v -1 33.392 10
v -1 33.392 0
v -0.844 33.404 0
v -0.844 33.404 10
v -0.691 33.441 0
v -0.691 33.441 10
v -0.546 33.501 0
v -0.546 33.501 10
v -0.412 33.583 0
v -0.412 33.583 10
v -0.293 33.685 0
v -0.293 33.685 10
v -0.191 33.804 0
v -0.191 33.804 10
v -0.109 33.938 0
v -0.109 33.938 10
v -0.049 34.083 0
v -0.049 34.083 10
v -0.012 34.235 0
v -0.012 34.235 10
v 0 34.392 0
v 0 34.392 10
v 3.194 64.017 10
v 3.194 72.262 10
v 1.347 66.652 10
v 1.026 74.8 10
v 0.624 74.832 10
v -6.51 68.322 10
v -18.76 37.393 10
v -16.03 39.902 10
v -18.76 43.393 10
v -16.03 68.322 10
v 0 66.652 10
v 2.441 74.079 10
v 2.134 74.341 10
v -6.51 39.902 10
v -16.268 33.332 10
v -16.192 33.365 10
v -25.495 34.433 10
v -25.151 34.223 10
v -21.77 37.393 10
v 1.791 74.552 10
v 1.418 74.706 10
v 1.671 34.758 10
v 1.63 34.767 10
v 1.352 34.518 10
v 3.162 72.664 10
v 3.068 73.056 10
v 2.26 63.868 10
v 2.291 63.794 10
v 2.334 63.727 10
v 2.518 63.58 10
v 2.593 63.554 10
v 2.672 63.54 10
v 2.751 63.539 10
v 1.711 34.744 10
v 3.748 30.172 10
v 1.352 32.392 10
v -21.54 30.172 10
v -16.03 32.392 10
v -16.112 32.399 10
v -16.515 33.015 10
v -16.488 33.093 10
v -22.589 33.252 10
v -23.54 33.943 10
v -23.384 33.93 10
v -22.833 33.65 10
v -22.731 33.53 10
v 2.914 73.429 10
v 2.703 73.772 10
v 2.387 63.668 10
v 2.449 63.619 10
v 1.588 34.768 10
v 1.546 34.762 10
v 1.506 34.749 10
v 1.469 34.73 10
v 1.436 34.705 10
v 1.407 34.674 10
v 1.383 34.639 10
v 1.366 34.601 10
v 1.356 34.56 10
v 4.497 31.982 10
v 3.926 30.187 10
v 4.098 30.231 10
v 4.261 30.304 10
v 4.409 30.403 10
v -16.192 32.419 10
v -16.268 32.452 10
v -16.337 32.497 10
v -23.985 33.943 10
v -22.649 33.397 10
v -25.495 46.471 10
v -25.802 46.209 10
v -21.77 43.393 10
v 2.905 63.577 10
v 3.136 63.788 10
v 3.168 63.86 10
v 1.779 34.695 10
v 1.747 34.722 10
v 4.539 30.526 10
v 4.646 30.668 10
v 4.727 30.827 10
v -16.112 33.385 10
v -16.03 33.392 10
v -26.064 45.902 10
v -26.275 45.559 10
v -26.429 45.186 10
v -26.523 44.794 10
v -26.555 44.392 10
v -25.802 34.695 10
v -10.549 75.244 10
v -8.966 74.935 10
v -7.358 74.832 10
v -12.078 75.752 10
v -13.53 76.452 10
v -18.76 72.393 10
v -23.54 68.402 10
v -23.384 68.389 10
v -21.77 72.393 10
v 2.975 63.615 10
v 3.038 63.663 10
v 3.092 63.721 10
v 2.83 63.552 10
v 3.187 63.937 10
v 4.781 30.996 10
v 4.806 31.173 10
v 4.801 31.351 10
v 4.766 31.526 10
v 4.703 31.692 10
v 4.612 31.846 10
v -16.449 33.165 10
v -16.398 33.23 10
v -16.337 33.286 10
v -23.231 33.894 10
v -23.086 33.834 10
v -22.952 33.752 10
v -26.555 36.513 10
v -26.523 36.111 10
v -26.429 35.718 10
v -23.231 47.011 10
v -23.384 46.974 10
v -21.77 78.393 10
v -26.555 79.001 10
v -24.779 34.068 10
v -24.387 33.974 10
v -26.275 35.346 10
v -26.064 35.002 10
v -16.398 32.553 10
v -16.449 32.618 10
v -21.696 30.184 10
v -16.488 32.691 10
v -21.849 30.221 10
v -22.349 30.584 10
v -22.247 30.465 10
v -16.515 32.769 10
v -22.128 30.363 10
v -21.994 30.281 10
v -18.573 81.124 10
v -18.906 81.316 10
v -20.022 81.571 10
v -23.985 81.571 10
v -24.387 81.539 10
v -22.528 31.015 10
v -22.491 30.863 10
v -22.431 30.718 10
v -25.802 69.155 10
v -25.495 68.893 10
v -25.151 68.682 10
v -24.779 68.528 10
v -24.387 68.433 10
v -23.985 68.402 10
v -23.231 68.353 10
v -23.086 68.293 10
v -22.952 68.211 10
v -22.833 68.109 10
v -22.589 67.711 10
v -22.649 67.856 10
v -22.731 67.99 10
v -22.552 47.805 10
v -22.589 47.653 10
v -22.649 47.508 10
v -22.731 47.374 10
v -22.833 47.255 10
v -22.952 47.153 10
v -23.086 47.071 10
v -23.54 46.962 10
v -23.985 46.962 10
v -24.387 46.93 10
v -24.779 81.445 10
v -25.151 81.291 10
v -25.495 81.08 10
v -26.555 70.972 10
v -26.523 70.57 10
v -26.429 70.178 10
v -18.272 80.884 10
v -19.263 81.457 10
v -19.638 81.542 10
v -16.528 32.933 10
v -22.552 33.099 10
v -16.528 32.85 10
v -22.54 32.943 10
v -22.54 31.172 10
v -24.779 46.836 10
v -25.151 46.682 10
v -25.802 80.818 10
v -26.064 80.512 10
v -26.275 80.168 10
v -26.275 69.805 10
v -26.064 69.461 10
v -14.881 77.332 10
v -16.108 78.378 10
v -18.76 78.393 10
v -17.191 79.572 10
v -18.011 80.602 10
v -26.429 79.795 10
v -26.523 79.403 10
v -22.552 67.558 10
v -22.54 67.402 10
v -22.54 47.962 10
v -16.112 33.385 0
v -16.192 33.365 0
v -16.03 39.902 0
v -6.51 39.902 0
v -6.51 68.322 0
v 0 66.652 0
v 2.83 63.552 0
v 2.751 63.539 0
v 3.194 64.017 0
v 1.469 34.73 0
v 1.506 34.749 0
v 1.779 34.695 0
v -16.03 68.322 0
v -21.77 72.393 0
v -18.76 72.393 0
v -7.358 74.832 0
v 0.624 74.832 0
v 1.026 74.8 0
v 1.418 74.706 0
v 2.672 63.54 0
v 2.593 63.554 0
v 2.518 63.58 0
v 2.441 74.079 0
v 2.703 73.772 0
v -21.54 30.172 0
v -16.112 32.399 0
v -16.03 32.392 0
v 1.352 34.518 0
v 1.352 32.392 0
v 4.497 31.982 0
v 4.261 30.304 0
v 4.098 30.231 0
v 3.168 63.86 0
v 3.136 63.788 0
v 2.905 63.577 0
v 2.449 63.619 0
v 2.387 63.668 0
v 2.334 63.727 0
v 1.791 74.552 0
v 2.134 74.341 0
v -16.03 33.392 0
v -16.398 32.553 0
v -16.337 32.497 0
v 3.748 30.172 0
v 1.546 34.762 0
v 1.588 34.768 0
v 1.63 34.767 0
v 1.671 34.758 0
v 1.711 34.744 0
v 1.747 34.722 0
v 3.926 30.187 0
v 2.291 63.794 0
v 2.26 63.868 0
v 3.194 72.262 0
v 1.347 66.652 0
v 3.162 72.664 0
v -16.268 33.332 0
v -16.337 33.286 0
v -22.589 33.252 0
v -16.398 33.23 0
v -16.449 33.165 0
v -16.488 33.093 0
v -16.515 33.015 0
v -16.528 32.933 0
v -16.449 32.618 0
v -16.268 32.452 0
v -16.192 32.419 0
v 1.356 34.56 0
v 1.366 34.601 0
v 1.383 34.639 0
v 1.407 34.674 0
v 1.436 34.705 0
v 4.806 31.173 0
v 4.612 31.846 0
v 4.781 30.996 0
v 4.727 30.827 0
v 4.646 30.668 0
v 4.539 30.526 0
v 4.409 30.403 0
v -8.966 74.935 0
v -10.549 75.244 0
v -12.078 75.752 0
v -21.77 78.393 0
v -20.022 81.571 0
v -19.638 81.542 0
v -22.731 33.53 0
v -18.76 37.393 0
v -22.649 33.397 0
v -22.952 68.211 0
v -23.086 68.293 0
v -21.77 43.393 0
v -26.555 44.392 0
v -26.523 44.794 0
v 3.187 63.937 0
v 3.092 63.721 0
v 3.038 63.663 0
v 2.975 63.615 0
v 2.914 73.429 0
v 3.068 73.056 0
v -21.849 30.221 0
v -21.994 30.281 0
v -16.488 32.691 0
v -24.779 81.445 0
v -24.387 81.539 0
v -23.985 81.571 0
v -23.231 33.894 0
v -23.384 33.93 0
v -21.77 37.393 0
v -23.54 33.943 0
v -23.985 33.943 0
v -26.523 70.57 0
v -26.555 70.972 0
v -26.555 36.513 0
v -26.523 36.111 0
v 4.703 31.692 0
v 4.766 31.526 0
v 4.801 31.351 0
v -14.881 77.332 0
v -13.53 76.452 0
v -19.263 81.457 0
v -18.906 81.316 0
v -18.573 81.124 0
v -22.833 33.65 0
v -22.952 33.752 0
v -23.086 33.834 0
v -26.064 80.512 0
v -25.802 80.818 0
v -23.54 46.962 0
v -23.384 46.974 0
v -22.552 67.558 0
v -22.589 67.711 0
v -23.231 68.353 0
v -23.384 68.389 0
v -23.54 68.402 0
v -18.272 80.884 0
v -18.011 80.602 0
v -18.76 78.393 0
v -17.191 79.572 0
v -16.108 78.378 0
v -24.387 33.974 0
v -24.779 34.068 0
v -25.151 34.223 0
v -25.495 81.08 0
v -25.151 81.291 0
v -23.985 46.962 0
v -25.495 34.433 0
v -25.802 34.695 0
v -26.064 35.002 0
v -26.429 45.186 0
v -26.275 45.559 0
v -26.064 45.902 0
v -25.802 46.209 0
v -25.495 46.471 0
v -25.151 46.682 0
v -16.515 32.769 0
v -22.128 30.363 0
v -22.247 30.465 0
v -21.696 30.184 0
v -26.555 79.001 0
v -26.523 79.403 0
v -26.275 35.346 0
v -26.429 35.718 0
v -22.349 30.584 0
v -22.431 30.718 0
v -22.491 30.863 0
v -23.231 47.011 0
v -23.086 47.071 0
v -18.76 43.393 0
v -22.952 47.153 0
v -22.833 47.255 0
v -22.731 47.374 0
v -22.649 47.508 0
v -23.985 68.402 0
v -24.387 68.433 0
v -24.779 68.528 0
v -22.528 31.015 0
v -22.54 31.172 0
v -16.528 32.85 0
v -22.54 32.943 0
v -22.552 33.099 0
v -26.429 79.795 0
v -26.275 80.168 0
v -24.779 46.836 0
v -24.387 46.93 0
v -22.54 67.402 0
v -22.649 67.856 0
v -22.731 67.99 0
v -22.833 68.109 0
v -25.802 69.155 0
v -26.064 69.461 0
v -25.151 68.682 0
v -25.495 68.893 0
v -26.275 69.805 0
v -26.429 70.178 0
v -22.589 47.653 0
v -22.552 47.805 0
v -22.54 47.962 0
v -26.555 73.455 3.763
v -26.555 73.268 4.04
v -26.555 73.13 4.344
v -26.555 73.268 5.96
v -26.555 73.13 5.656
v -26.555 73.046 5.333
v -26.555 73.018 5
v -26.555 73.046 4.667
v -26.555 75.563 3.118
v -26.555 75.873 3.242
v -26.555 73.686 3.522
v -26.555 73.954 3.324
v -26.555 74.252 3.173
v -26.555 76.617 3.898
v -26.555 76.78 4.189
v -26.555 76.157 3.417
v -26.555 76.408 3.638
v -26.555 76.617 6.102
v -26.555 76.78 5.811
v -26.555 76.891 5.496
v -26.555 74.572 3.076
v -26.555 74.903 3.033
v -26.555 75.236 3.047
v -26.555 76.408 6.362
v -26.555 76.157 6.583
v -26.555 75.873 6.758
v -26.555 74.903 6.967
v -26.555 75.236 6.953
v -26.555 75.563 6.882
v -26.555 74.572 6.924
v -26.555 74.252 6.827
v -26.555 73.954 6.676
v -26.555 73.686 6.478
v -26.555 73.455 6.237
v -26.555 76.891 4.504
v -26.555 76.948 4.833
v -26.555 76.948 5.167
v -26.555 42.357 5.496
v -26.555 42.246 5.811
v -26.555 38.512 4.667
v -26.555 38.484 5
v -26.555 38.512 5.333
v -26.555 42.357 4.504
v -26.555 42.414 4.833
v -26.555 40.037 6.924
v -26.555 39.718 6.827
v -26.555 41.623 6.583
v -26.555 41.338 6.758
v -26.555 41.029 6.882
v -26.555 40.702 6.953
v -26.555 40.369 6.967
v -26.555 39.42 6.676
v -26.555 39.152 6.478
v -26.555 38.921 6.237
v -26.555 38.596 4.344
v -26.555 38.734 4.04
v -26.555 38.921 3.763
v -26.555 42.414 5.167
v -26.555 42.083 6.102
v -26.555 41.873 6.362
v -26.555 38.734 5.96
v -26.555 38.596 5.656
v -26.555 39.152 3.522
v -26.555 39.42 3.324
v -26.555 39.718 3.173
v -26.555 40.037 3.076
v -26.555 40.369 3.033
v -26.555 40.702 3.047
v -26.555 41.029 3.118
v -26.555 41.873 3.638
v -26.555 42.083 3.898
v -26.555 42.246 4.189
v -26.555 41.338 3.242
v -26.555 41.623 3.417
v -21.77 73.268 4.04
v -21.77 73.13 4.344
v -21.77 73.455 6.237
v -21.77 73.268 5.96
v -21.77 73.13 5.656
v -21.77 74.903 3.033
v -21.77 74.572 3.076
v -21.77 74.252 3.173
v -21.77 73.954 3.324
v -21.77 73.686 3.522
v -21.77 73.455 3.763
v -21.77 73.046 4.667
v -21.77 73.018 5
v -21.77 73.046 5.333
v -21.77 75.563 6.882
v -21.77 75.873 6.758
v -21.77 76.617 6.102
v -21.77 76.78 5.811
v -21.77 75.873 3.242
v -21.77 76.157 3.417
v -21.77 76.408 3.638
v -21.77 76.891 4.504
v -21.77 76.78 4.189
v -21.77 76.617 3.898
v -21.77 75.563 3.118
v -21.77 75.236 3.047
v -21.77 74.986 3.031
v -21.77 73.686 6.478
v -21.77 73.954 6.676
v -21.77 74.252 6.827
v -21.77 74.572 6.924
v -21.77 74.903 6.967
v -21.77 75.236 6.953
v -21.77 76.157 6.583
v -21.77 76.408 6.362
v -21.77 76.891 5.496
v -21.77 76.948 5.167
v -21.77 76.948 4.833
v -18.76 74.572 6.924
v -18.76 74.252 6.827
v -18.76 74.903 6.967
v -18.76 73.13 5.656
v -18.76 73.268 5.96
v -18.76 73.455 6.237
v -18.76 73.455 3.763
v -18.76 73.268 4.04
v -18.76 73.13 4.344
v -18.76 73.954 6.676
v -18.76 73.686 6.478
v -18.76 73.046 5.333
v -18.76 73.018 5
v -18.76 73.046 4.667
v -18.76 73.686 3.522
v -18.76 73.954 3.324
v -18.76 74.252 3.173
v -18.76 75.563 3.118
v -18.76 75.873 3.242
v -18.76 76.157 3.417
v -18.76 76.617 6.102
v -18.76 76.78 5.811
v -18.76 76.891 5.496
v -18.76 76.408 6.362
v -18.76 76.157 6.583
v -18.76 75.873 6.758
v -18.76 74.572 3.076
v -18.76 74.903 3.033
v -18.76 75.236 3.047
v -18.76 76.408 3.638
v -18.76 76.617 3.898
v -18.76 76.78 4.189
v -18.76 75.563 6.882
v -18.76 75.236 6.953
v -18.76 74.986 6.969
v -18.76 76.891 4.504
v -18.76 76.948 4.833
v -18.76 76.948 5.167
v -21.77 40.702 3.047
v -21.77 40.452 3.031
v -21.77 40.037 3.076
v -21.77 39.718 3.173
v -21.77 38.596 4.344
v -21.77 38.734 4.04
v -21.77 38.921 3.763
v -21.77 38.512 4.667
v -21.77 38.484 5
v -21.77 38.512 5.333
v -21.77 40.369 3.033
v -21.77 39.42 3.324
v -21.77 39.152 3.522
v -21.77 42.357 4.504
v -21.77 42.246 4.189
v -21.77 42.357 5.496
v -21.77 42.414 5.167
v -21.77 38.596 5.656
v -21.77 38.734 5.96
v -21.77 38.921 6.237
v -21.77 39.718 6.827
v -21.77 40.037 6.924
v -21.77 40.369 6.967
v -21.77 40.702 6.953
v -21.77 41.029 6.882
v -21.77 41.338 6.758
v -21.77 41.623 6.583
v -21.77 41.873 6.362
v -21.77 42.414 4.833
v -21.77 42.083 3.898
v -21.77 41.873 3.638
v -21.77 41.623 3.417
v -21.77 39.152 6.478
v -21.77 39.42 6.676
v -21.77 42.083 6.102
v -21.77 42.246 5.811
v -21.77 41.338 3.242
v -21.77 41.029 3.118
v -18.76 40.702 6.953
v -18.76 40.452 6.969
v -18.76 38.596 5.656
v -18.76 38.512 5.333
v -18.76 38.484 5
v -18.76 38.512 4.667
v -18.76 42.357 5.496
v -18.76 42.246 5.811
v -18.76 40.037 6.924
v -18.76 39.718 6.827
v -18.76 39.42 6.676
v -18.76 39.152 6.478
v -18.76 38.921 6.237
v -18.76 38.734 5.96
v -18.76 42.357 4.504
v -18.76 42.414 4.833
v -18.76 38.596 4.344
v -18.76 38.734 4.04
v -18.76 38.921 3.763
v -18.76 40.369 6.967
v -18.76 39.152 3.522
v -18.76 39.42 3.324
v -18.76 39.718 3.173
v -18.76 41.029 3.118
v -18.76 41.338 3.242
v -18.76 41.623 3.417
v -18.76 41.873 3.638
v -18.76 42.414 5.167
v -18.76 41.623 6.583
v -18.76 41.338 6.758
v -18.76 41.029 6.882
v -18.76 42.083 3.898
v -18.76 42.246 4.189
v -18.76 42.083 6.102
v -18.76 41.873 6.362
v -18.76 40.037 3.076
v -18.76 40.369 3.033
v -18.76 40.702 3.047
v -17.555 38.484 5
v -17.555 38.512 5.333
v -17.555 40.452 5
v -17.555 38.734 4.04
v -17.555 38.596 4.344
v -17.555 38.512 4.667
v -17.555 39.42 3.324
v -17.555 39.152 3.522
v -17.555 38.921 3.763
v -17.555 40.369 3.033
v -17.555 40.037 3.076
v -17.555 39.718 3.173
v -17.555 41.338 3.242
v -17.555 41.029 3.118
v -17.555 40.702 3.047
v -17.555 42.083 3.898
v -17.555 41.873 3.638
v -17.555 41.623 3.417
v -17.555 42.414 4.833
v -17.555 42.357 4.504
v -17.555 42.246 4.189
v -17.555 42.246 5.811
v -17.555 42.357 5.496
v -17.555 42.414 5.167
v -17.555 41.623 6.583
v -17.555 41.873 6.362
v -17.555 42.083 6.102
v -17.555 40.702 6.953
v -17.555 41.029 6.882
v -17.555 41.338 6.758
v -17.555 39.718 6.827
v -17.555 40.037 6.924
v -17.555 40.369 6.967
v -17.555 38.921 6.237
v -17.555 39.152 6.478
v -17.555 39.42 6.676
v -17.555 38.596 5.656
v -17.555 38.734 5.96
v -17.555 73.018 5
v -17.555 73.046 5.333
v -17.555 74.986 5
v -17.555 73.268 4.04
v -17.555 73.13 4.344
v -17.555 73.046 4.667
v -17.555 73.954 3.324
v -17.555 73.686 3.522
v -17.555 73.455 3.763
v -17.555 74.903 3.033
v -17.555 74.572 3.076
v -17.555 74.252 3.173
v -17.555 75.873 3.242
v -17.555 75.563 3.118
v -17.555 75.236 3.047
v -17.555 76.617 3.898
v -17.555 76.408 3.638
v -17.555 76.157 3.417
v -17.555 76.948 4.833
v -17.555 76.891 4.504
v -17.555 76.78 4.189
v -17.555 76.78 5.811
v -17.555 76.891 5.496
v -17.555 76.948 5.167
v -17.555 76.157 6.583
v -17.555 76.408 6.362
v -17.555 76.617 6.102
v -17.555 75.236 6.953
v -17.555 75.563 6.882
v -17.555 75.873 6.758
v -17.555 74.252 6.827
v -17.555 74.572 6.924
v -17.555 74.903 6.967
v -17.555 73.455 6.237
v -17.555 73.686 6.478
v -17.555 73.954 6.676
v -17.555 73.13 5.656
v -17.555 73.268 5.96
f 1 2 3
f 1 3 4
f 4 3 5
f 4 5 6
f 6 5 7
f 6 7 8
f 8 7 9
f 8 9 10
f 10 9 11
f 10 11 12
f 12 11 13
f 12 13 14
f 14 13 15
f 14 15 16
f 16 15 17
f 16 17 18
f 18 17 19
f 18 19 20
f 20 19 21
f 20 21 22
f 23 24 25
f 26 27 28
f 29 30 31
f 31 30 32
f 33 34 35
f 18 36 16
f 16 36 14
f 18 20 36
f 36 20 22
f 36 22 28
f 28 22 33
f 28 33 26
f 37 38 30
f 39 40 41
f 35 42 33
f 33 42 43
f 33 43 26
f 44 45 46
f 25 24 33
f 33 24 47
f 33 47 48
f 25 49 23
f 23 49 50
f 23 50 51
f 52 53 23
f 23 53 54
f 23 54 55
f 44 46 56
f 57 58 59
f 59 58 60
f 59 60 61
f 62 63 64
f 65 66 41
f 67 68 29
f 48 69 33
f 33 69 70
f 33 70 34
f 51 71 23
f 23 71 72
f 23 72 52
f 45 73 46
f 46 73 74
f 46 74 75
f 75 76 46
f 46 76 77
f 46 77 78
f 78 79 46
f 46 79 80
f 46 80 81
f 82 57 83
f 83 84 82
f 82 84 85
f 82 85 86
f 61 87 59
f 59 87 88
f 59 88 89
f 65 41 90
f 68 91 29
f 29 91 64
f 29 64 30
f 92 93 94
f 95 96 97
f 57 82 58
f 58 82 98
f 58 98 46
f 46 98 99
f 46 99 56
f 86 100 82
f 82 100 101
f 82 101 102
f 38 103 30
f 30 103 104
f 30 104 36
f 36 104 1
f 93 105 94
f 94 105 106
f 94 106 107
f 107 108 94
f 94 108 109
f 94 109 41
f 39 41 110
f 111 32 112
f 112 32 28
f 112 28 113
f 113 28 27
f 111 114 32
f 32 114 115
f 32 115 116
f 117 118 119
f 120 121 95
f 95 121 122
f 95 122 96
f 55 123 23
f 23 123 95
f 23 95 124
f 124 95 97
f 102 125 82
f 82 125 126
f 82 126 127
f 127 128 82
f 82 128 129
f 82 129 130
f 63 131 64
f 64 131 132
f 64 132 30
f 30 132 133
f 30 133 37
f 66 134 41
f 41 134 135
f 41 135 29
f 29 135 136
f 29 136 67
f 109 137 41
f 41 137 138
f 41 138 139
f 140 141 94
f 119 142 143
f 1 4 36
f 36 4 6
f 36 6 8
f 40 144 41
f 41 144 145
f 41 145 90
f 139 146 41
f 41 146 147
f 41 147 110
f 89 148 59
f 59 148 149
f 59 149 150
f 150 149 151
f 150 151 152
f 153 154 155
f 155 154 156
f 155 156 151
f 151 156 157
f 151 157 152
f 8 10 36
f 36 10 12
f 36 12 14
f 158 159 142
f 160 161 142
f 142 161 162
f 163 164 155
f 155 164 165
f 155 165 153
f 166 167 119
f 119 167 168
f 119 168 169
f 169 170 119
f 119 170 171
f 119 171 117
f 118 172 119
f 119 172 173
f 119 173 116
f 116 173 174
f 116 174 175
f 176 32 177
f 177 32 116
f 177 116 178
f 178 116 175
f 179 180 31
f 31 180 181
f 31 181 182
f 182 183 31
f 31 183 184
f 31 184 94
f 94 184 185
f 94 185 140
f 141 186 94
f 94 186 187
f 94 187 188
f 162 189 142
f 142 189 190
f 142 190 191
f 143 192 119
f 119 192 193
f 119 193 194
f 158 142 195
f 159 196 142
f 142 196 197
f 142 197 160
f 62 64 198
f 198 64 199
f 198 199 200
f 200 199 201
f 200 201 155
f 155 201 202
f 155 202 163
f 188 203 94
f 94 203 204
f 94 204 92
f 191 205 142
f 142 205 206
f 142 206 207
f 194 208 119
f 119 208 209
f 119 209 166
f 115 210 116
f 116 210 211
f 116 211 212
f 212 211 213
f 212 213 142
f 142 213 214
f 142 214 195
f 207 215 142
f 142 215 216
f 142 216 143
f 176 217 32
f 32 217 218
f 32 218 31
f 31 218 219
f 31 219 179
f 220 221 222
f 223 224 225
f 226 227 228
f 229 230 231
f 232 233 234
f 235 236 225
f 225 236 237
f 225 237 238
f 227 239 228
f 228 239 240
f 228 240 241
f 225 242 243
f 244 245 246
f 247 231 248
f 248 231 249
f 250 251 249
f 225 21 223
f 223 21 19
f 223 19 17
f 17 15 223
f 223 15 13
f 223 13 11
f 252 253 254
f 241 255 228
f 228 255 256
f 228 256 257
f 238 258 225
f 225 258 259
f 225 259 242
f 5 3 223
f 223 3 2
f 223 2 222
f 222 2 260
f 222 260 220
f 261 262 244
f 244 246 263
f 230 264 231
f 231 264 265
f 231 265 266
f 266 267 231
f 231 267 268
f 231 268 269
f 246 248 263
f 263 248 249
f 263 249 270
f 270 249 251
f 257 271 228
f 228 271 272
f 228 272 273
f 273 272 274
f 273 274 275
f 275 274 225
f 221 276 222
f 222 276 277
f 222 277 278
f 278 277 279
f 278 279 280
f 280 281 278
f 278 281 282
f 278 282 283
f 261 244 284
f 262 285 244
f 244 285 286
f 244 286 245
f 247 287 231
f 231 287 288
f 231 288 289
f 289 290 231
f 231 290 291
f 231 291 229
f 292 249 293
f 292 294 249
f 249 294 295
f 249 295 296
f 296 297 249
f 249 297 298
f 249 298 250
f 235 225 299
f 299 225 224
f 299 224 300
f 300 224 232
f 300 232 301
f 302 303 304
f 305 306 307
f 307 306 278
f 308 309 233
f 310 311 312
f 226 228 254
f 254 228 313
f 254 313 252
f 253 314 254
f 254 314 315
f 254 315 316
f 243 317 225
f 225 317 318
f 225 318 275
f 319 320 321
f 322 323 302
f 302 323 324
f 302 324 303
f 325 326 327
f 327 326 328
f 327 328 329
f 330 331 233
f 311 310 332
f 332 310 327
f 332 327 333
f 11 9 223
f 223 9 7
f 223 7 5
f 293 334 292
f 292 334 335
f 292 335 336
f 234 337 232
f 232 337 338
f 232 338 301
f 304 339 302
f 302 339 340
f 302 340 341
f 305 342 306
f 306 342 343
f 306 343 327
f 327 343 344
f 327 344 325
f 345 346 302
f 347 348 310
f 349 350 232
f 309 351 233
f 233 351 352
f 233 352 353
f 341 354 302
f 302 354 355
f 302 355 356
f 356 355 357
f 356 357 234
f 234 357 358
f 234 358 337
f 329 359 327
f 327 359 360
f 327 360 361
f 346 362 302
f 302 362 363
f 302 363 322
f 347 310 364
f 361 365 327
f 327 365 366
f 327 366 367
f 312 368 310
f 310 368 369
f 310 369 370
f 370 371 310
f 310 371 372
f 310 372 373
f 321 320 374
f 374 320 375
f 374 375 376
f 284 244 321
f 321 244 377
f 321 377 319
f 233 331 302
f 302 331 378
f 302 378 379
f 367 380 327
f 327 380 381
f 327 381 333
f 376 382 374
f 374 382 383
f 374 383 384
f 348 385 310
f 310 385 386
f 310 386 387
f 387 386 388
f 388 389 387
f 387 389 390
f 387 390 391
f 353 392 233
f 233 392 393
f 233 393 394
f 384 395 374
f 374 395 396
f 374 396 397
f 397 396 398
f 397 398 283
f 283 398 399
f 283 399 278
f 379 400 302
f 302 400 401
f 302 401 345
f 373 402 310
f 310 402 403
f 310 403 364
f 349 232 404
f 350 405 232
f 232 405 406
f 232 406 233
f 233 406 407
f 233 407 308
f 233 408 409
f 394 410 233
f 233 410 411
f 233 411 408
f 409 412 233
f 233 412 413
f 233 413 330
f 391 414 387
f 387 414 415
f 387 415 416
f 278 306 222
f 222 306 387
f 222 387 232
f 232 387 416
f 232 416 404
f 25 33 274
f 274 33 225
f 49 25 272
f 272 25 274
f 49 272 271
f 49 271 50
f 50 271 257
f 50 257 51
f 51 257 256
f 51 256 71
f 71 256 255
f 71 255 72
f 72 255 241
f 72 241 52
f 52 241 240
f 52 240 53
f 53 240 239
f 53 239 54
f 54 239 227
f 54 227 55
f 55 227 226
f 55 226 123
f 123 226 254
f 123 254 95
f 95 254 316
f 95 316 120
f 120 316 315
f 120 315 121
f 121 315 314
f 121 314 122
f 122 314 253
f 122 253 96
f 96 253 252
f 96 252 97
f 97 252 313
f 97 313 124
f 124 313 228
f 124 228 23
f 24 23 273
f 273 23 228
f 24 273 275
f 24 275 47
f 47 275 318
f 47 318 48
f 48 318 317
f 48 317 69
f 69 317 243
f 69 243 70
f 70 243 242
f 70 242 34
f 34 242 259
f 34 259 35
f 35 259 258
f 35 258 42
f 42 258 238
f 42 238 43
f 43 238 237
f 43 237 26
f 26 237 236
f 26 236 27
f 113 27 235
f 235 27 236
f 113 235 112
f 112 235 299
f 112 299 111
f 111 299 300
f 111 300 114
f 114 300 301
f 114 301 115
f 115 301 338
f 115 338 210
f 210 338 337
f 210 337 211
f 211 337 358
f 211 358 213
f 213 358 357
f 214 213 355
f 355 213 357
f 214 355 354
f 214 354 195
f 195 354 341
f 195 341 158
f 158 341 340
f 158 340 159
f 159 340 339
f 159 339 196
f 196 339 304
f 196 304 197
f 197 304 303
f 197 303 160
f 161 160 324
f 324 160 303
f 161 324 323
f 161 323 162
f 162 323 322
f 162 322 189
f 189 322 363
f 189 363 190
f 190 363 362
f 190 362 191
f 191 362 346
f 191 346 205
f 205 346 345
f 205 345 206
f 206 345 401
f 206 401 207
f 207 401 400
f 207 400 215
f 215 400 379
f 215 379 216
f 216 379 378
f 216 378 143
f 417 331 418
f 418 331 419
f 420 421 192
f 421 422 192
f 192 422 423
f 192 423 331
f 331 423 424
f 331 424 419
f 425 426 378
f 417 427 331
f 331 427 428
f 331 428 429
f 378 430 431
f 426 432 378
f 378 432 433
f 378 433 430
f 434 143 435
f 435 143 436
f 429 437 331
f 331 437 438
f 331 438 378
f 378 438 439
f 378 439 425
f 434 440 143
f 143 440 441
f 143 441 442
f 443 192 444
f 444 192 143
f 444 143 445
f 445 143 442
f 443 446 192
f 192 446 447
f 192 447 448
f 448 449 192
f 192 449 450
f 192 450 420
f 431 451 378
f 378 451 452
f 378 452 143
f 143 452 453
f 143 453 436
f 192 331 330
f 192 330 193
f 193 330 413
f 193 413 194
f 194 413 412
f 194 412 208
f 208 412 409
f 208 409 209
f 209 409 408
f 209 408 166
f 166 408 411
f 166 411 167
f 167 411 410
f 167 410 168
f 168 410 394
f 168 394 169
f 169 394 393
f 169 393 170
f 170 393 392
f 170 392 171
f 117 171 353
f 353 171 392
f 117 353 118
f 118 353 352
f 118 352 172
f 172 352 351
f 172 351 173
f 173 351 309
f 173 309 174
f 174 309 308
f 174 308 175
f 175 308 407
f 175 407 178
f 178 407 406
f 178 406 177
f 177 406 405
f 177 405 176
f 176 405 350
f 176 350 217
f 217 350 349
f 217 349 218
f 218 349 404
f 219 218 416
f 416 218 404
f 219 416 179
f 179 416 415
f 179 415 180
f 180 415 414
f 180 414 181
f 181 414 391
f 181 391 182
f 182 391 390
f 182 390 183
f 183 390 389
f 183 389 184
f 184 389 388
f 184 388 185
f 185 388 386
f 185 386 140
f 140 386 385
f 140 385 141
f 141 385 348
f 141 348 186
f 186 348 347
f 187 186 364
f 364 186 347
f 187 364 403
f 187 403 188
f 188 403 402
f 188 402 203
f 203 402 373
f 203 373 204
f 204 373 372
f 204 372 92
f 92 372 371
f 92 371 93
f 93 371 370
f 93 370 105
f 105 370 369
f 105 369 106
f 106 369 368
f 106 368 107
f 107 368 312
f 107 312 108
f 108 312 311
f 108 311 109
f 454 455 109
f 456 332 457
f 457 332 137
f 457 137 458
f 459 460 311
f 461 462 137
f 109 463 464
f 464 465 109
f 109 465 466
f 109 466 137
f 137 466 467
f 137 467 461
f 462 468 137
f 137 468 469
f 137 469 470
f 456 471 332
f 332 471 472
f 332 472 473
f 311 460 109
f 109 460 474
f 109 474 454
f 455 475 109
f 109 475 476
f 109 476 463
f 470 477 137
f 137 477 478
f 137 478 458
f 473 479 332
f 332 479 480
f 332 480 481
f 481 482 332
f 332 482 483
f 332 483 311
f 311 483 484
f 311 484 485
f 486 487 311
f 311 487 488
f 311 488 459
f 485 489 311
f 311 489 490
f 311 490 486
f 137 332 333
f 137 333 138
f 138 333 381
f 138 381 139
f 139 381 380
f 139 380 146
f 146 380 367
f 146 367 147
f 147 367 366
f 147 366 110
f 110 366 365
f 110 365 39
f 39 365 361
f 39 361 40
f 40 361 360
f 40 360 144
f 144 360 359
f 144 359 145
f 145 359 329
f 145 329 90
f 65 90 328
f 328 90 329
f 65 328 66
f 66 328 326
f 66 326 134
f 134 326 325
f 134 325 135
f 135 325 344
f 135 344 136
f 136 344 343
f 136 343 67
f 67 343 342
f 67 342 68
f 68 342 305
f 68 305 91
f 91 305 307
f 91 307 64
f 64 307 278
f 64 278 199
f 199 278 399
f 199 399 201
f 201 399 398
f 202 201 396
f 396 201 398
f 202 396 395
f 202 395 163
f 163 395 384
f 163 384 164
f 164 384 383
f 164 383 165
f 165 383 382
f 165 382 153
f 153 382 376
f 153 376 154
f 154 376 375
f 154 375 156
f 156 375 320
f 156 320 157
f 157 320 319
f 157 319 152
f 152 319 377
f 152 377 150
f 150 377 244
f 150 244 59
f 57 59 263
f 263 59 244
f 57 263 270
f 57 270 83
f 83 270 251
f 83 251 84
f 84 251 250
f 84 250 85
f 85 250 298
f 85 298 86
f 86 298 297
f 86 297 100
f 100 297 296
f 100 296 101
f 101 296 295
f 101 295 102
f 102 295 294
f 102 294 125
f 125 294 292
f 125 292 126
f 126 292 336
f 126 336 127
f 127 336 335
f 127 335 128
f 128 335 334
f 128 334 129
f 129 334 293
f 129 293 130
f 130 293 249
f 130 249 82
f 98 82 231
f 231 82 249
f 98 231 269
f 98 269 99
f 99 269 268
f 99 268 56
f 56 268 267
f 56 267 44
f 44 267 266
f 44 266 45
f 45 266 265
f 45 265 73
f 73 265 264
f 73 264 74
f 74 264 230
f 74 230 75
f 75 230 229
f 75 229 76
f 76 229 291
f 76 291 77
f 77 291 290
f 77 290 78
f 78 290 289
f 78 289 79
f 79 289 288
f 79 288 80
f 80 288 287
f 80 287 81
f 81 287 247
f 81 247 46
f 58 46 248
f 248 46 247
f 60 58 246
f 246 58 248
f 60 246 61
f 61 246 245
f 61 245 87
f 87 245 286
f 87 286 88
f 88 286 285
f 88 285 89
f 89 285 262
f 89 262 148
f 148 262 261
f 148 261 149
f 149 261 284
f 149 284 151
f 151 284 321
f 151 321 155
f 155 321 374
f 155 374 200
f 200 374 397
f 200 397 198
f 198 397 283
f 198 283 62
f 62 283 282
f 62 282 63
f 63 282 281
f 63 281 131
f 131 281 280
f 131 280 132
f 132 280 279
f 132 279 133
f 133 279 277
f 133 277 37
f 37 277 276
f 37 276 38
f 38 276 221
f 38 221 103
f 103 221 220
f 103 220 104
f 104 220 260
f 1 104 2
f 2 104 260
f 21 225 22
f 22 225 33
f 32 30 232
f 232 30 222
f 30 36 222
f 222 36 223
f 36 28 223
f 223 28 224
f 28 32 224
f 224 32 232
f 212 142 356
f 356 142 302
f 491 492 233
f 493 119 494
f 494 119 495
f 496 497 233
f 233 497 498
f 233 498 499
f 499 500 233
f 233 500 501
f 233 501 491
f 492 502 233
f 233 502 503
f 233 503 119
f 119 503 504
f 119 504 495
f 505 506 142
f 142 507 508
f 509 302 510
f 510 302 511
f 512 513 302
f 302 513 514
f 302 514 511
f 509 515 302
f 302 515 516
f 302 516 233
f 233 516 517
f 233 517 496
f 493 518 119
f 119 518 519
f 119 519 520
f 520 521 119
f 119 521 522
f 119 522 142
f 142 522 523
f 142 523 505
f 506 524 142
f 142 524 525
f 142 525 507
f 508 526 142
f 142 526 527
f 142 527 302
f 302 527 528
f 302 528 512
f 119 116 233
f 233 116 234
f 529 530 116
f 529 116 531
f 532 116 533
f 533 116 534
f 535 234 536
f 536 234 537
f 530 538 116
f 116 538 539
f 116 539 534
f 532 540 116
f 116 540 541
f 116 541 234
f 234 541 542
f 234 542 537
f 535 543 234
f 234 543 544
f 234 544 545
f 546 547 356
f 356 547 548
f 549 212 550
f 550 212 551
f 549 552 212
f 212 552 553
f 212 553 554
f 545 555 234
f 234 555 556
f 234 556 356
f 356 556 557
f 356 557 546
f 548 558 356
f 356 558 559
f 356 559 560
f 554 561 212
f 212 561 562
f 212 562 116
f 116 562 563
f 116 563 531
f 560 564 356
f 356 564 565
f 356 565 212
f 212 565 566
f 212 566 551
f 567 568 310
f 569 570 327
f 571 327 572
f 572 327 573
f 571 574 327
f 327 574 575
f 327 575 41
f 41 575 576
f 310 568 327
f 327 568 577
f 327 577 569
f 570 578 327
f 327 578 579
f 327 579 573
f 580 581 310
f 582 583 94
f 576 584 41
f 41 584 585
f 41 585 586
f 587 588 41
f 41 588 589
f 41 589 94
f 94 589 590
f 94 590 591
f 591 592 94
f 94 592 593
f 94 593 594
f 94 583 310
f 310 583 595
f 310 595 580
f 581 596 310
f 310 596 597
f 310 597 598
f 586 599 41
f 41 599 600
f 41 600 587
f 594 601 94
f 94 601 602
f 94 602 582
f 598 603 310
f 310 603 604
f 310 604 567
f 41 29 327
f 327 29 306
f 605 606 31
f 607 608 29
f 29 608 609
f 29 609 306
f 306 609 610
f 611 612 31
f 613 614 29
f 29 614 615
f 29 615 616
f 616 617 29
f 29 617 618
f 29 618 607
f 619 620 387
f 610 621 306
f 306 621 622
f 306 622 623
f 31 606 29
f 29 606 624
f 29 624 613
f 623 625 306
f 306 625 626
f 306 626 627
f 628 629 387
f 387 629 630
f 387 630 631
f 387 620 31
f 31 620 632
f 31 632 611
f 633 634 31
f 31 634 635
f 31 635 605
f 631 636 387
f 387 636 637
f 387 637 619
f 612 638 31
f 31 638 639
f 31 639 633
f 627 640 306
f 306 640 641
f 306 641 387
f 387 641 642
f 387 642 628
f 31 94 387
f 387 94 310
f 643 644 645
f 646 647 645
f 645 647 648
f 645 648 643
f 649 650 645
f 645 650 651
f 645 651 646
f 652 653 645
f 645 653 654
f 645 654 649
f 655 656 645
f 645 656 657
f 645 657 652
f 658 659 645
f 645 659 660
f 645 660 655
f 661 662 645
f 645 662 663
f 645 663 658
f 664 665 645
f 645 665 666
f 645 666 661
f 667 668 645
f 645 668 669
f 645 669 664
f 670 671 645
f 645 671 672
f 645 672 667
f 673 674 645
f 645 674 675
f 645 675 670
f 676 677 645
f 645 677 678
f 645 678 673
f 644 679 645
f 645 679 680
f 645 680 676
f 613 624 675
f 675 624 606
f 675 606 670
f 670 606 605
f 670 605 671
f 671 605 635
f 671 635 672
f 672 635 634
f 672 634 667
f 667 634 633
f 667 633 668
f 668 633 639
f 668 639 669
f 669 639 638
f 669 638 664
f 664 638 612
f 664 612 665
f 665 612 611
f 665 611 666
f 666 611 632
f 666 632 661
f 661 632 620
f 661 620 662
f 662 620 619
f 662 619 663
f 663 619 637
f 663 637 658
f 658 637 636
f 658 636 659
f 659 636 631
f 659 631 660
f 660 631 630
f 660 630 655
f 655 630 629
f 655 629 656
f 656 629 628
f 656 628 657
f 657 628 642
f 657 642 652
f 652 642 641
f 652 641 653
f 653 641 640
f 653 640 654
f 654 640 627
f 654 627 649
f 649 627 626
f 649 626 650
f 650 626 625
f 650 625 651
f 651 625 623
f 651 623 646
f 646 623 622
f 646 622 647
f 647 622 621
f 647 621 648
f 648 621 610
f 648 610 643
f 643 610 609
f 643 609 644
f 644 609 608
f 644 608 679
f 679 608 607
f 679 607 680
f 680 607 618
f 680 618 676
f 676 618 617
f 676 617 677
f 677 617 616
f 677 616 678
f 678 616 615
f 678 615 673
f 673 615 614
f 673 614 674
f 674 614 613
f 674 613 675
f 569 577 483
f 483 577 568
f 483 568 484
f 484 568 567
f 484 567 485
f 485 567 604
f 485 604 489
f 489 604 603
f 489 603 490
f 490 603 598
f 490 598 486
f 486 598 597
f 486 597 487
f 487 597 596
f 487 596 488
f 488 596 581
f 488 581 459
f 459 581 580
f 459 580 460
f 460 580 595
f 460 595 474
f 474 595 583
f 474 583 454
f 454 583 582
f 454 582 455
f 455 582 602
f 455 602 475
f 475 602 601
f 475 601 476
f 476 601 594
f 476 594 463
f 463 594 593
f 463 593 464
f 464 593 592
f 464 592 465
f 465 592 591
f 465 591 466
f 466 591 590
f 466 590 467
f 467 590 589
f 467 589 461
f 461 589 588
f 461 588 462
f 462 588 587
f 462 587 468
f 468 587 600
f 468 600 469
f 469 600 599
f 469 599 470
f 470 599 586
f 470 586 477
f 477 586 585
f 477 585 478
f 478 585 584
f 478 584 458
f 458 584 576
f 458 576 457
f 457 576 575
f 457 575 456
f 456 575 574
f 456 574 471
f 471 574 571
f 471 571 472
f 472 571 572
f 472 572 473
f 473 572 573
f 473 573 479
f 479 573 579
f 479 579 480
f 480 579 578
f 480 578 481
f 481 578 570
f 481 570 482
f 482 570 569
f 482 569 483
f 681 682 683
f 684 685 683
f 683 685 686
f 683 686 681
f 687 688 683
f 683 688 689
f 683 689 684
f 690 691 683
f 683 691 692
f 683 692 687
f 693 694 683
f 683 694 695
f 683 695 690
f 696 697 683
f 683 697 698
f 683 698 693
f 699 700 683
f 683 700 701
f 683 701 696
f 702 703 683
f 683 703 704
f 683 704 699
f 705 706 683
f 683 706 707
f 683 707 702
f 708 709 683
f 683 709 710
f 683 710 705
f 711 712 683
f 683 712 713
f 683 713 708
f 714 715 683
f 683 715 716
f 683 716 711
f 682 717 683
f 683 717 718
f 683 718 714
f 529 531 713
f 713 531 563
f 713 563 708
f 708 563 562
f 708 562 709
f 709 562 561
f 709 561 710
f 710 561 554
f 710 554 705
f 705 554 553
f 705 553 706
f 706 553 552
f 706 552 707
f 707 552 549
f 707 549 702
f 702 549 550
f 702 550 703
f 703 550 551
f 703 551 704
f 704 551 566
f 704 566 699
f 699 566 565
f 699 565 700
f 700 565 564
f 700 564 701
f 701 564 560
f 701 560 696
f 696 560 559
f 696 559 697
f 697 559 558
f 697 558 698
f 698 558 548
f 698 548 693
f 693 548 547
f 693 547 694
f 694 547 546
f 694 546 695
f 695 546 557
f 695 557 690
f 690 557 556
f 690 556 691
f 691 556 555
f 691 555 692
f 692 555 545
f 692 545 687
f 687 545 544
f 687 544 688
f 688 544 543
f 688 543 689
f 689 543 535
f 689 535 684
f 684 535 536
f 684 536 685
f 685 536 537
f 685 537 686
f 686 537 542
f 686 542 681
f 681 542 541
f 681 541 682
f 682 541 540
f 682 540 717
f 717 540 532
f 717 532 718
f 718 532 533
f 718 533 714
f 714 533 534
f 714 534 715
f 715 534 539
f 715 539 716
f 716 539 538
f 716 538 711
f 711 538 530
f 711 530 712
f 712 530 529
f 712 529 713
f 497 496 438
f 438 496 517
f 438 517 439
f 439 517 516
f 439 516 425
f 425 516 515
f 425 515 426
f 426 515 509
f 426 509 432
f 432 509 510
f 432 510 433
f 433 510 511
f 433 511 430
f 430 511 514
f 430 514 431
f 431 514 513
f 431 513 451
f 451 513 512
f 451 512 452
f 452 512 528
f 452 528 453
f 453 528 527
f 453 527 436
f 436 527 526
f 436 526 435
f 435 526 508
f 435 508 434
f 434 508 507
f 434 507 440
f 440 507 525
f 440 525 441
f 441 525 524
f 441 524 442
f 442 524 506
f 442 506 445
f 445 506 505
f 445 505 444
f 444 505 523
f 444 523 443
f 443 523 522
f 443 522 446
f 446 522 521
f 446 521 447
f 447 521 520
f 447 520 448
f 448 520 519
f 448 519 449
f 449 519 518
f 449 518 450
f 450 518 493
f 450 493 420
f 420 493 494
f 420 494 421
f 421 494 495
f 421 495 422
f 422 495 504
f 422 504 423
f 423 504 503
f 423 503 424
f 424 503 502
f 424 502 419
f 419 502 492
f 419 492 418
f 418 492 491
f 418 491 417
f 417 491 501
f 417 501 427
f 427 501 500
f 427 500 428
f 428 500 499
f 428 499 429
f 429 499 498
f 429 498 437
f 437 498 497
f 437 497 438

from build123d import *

# Parameters (mm, degrees)
SKETCH2_W           = 9.52
SKETCH2_H           = 28.42
SKETCH2_W_2         = 3.01
SKETCH2_H_2         = 6
BOSS_EXTRUDE1_DEPTH = 10
SKETCH3_R           = 1.96857517
CUT_EXTRUDE1_DEPTH  = 9
FILLET1_R           = 1


with BuildPart() as part:
    # Sketch2 → Boss-Extrude1 (new body)
    with BuildSketch(Plane.XY):
        with BuildLine():
            Line((0, 66.651771766), (0, 33.391771766))
            Line((0, 33.391771766), (-16.03, 33.391771766))
            ThreePointArc((-16.03, 33.391771766), (-16.53, 32.891771766), (-16.03, 32.391771766))
            Line((-16.03, 32.391771766), (1.352234191, 32.391771766))
            Line((1.352234191, 32.391771766), (1.352234191, 34.518218659))
            ThreePointArc((1.352234191, 34.518218659), (1.506462672, 34.749146821), (1.77885672, 34.695149386))
            Line((1.77885672, 34.695149386), (4.496782459, 31.98195805))
            ThreePointArc((4.496782459, 31.98195805), (4.727391952, 30.826554208), (3.747902937, 30.171771766))
            Line((3.747902937, 30.171771766), (-21.54, 30.171771766))
            ThreePointArc((-21.54, 30.171771766), (-22.247106781, 30.464664985), (-22.54, 31.171771766))
            Line((-22.54, 31.171771766), (-22.54, 32.942649485))
            ThreePointArc((-22.54, 32.942649485), (-22.832893219, 33.649756266), (-23.54, 33.942649485))
            Line((-23.54, 33.942649485), (-23.98462025, 33.942649485))
            ThreePointArc((-23.98462025, 33.942649485), (-25.801884678, 34.695385057), (-26.55462025, 36.512649485))
            Line((-26.55462025, 36.512649485), (-26.55462025, 44.391771766))
            ThreePointArc((-26.55462025, 44.391771766), (-25.801884678, 46.209036193), (-23.98462025, 46.961771766))
            Line((-23.98462025, 46.961771766), (-23.54, 46.961771766))
            ThreePointArc((-23.54, 46.961771766), (-22.832893219, 47.254664985), (-22.54, 47.961771766))
            Line((-22.54, 47.961771766), (-22.54, 67.401771766))
            ThreePointArc((-22.54, 67.401771766), (-22.832893219, 68.108878547), (-23.54, 68.401771766))
            Line((-23.54, 68.401771766), (-23.98462025, 68.401771766))
            ThreePointArc((-23.98462025, 68.401771766), (-25.801884678, 69.154507338), (-26.55462025, 70.971771766))
            Line((-26.55462025, 70.971771766), (-26.55462025, 77.401771766))
            Line((-26.55462025, 77.401771766), (-26.55462025, 79.000903717))
            ThreePointArc((-26.55462025, 79.000903717), (-25.801884678, 80.818168145), (-23.98462025, 81.570903717))
            Line((-23.98462025, 81.570903717), (-20.021565093, 81.570903717))
            ThreePointArc((-20.021565093, 81.570903717), (-18.905624991, 81.31597989), (-18.011069886, 80.601781295))
            Line((-18.011069886, 80.601781295), (-17.190935487, 79.571798553))
            ThreePointArc((-17.190935487, 79.571798553), (-12.815621218, 76.078617097), (-7.357501728, 74.831771766))
            Line((-7.357501728, 74.831771766), (0.623852111, 74.831771766))
            ThreePointArc((0.623852111, 74.831771766), (2.441116539, 74.079036193), (3.193852111, 72.261771766))
            Line((3.193852111, 72.261771766), (3.193852111, 64.016682225))
            ThreePointArc((3.193852111, 64.016682225), (2.79053513, 63.543838386), (2.26, 63.867533241))
            Line((2.26, 63.867533241), (1.347357771, 66.651771766))
            Line((1.347357771, 66.651771766), (0, 66.651771766))
        make_face()
        with Locations((-11.27, 54.111771766)):
            Rectangle(SKETCH2_W, SKETCH2_H, mode=Mode.SUBTRACT)
        with Locations((-20.2649024, 75.392647139)):
            Rectangle(SKETCH2_W_2, SKETCH2_H_2, mode=Mode.SUBTRACT)
        with Locations((-20.2649024, 40.392647139)):
            Rectangle(SKETCH2_W_2, SKETCH2_H_2, mode=Mode.SUBTRACT)
    extrude(amount=BOSS_EXTRUDE1_DEPTH)

    # Sketch3 → Cut-Extrude1 (cut)
    with BuildSketch(Plane.ZY.offset(26.55462025)):
        with Locations(Location((5, 40.452210625, 0), (0, 0, 270))):
            Circle(SKETCH3_R)
        with Locations(Location((5, 74.986337741, 0), (0, 0, 270))):
            Circle(SKETCH3_R)
    extrude(amount=-CUT_EXTRUDE1_DEPTH, mode=Mode.SUBTRACT)

    # Fillet1
    fillet1_edges = [part.edges().sort_by_distance(p)[0] for p in [
        (0, 33.391771766, 5),
    ]]
    fillet(fillet1_edges, radius=FILLET1_R)


solid = part.part
